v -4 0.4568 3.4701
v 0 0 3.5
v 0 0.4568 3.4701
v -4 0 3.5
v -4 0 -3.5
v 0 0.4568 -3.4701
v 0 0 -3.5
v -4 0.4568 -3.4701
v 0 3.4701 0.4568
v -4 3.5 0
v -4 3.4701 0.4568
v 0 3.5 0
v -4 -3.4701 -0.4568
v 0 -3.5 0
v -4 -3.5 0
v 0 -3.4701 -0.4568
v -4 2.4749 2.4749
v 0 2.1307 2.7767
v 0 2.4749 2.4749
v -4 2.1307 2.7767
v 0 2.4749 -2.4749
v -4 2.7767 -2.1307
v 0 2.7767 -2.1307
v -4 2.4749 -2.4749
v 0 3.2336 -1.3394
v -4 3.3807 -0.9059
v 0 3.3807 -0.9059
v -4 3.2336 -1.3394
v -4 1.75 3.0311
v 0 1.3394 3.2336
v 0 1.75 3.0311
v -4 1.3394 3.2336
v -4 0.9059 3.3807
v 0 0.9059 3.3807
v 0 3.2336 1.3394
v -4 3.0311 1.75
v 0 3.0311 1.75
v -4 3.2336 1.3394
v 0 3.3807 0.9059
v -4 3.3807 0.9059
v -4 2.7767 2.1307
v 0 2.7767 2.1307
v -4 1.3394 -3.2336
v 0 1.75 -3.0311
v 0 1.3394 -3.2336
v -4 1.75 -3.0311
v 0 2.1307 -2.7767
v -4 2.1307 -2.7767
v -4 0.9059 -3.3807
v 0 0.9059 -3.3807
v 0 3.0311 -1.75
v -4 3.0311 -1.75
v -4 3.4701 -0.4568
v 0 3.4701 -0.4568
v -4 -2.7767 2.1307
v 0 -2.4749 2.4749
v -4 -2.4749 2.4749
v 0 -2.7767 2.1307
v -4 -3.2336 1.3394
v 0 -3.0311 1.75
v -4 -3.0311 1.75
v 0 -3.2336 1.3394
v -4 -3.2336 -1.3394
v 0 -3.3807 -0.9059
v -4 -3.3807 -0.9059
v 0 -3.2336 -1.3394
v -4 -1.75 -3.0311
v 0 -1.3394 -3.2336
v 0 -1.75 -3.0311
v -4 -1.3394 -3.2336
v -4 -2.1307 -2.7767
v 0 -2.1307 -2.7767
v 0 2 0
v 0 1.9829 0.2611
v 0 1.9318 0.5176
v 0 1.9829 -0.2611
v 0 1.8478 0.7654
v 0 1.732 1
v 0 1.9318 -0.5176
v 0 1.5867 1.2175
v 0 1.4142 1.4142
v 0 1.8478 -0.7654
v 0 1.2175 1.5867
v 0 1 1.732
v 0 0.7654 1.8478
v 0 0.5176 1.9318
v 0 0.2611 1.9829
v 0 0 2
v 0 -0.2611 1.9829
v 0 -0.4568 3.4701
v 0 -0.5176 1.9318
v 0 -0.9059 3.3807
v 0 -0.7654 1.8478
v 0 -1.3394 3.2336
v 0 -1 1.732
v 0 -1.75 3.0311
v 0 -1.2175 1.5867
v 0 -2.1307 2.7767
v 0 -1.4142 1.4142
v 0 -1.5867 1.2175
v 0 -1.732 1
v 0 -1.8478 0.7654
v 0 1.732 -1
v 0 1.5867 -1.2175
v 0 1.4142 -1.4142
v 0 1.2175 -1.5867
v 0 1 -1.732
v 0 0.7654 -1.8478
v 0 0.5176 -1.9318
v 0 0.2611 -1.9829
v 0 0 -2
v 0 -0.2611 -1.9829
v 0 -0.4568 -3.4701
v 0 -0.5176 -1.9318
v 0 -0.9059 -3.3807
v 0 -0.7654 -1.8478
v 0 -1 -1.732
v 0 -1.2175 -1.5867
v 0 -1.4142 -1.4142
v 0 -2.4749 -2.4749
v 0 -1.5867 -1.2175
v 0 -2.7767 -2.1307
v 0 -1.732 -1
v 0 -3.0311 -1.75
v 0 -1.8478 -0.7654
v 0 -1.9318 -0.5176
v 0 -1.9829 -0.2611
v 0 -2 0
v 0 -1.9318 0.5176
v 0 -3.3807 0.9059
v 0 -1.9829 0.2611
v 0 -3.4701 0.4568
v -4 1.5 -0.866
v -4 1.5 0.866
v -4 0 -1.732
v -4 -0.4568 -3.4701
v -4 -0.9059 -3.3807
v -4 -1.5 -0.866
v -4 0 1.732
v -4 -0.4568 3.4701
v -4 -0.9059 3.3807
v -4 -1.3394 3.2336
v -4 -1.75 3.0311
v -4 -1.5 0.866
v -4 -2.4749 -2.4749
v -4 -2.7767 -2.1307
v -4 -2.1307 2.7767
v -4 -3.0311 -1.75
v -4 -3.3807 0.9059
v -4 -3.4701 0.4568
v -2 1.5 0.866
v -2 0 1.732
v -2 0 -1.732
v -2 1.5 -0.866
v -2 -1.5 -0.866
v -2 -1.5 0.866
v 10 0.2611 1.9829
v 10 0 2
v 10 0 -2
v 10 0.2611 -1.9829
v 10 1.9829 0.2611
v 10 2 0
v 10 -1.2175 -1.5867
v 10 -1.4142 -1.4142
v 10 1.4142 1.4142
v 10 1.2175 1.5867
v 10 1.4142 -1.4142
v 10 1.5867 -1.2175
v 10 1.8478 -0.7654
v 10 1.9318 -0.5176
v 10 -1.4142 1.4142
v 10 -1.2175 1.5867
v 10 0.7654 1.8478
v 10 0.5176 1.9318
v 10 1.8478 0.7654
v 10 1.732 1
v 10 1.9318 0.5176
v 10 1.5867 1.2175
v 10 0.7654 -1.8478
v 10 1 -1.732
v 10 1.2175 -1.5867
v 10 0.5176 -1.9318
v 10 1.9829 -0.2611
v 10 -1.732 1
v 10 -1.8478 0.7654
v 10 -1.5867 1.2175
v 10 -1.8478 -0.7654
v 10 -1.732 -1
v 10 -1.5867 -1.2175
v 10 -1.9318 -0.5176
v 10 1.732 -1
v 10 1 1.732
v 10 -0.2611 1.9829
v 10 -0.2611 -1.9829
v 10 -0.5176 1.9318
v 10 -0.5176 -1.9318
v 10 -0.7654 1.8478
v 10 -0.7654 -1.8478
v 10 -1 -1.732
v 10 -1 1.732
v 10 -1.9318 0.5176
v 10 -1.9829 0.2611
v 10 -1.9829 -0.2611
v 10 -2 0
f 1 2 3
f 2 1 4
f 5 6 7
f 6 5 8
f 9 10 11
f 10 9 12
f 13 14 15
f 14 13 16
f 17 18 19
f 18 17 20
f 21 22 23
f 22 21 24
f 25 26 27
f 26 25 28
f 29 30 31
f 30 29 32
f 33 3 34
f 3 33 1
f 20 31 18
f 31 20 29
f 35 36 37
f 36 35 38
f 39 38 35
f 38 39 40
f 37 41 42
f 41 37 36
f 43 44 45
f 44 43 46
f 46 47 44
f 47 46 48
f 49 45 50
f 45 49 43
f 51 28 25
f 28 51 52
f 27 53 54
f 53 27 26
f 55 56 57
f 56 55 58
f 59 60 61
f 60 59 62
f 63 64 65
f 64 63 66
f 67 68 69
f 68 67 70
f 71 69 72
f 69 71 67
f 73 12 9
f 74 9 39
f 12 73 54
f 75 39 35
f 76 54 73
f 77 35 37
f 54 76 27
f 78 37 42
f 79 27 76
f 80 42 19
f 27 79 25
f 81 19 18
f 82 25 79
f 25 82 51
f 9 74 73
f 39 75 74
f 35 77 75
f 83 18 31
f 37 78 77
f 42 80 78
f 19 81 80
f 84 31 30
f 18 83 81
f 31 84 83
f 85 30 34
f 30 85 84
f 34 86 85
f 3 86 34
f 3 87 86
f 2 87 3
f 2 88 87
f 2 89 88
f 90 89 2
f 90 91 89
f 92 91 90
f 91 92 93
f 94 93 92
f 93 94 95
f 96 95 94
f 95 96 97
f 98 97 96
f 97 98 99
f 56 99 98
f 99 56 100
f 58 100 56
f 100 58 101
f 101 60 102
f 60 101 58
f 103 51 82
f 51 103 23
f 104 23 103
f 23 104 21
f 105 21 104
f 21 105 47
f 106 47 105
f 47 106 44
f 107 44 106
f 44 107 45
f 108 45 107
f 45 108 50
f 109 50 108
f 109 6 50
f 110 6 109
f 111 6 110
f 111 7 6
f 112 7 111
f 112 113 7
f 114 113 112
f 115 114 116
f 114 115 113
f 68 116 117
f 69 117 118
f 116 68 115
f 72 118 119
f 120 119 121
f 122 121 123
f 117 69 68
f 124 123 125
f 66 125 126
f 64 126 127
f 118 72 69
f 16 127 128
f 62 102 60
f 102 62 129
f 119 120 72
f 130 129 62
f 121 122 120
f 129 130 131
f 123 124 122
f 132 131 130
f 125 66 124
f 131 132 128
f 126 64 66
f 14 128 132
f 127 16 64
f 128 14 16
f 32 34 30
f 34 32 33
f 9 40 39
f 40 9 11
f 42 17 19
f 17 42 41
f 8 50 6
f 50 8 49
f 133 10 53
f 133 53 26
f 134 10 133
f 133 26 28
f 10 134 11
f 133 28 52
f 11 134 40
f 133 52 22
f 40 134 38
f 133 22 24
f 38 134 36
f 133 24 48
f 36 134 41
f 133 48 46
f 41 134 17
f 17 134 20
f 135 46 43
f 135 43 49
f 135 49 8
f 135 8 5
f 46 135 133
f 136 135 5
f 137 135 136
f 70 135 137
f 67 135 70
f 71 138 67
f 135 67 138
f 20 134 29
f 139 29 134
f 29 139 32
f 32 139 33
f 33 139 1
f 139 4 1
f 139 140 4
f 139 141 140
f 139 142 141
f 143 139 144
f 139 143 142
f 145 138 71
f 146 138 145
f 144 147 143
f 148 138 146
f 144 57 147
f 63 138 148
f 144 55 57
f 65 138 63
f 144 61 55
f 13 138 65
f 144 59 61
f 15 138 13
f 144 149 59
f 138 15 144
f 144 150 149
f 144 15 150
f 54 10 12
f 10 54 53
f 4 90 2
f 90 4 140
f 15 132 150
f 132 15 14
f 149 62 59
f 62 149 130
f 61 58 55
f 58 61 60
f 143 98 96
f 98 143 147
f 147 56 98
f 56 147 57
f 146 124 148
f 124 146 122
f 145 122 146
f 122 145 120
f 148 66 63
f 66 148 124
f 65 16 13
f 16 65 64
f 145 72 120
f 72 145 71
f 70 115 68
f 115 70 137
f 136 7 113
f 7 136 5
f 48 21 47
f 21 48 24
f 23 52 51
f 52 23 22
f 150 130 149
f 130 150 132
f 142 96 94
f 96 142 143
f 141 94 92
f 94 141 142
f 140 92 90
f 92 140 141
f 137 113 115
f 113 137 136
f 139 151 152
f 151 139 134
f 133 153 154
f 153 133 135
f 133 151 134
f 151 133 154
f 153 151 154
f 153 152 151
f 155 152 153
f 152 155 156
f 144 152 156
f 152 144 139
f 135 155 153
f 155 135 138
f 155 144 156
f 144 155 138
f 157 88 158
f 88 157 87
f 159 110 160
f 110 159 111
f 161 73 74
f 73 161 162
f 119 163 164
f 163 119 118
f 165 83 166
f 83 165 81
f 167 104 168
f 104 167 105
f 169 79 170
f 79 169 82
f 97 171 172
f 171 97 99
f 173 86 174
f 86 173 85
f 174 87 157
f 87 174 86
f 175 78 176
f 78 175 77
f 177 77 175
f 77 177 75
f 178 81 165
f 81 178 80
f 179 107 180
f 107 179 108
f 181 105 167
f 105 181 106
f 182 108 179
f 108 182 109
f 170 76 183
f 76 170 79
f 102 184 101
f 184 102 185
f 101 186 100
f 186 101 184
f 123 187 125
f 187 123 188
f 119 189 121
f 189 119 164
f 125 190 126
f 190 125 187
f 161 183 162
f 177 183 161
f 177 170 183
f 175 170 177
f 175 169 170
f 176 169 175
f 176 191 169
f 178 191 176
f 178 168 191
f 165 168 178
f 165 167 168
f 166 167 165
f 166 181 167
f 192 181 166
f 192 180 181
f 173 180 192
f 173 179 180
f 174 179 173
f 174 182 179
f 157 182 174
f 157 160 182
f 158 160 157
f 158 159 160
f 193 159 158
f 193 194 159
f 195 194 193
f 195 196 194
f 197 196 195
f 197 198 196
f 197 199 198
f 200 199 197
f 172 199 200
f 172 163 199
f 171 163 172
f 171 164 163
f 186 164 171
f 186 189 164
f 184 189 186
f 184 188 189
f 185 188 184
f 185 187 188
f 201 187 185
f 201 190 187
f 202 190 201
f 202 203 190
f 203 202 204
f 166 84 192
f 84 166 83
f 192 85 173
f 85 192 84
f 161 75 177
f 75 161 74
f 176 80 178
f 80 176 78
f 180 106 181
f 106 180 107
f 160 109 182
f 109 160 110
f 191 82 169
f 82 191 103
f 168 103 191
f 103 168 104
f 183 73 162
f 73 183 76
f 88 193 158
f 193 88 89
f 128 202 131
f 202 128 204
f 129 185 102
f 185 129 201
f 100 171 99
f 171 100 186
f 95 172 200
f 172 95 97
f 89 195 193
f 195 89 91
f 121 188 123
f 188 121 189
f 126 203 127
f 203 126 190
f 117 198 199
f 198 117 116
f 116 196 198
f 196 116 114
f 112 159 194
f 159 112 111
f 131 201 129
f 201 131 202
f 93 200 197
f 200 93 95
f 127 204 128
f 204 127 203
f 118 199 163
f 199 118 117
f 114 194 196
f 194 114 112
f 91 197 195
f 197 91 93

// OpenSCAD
// file: ../../../lib/nutsnbolts/data-access.scad
// Norm Nuts and Bolts - a OpenSCAD library
// Copyright (C) 2012  Johannes Kneer

// This program is free software: you can redistribute it and/or modify
// it under the terms of the GNU General Public License as published by
// the Free Software Foundation, either version 3 of the License, or
// (at your option) any later version.

// This program is distributed in the hope that it will be useful,
// but WITHOUT ANY WARRANTY; without even the implied warranty of
// MERCHANTABILITY or FITNESS FOR A PARTICULAR PURPOSE.  See the
// GNU General Public License for more details.

// You should have received a copy of the GNU General Public License
// along with this program.  If not, see <http://www.gnu.org/licenses/>.


// DATABASE ACCESS FUNCTIONS AND CONSTANTS



// == CONSTANTS ==

// screw table access keys
_NB_S_DESC            = 0;
_NB_S_FAMKEY			    = 1;
_NB_S_LENGTH          = 2;
_NB_S_NOTHREAD_LENGTH = 3;

_NB_F_DESC			      = 0;
_NB_F_OUTER_DIA       = 1;
_NB_F_INNER_DIA       = 2;
_NB_F_LEAD            = 3;
_NB_F_KEY             = 4;
_NB_F_KEY_DEPTH       = 5;
_NB_F_HEAD_HEIGHT     = 6;
_NB_F_HEAD_DIA        = 7;
_NB_F_NUT_KEY         = 8;
_NB_F_NUT_HEIGHT      = 9;
_NB_F_PITCH_FINE      = 10;
_NB_F_PITCH_MEDIUM    = 11;
_NB_F_PITCH_COARSE    = 12;


// == FUNCTIONS ==

// _get_screw("descriptor")   with descriptor = M8x25
//   find the line for a general object in the data matrix

function _get_screw(n) = data_screw[search([n], data_screw)[0]];
function _get_screw_fam(n) = data_screw_fam[search([_get_screw(n)[_NB_S_FAMKEY]], data_screw_fam)[0]];

function _get_fam(n) = data_screw_fam[search([n], data_screw_fam)[0]];


// _get_XXXXX("descriptor") functions
// find a single property in the database

function _get_desc(n)        = _get_screw(n)[_NB_S_DESC];
function _get_famkey(n)         = _get_screw(n)[_NB_S_FAMKEY];
function _get_length(n)      = _get_screw(n)[_NB_S_LENGTH];
function _get_nt_length(n)   = _get_screw(n)[_NB_S_NOTHREAD_LENGTH];

function _get_outer_dia(n)   = _get_screw_fam(n)[_NB_F_OUTER_DIA];
function _get_inner_dia(n)   = _get_screw_fam(n)[_NB_F_INNER_DIA];
function _get_lead(n)        = _get_screw_fam(n)[_NB_F_LEAD];
function _get_head_height(n) = _get_screw_fam(n)[_NB_F_HEAD_HEIGHT];
function _get_head_dia(n)    = _get_screw_fam(n)[_NB_F_HEAD_DIA];
function _get_nut_key(n)     = _get_screw_fam(n)[_NB_F_NUT_KEY];
function _get_nut_height(n)  = _get_screw_fam(n)[_NB_F_NUT_HEIGHT];
function _get_fine_pitch(n)  = _get_screw_fam(n)[_NB_F_PITCH_FINE];
function _get_medium_pitch(n)  = _get_screw_fam(n)[_NB_F_PITCH_MEDIUM];
function _get_coarse_pitch(n)  = _get_screw_fam(n)[_NB_F_PITCH_COARSE];
// main file
/**********************************************************************************************************************
 **
 ** parts/vitamins/screw_M4x10.scad
 **
 ** This file renders a screw of the dimensions specified by the file name.
 **
 **********************************************************************************************************************/

include <../../../lib/nutsnbolts/cyl_head_bolt.scad>;

$fn = 48;
rotate([0, -90, 0])
	screw("M4x10"); 
